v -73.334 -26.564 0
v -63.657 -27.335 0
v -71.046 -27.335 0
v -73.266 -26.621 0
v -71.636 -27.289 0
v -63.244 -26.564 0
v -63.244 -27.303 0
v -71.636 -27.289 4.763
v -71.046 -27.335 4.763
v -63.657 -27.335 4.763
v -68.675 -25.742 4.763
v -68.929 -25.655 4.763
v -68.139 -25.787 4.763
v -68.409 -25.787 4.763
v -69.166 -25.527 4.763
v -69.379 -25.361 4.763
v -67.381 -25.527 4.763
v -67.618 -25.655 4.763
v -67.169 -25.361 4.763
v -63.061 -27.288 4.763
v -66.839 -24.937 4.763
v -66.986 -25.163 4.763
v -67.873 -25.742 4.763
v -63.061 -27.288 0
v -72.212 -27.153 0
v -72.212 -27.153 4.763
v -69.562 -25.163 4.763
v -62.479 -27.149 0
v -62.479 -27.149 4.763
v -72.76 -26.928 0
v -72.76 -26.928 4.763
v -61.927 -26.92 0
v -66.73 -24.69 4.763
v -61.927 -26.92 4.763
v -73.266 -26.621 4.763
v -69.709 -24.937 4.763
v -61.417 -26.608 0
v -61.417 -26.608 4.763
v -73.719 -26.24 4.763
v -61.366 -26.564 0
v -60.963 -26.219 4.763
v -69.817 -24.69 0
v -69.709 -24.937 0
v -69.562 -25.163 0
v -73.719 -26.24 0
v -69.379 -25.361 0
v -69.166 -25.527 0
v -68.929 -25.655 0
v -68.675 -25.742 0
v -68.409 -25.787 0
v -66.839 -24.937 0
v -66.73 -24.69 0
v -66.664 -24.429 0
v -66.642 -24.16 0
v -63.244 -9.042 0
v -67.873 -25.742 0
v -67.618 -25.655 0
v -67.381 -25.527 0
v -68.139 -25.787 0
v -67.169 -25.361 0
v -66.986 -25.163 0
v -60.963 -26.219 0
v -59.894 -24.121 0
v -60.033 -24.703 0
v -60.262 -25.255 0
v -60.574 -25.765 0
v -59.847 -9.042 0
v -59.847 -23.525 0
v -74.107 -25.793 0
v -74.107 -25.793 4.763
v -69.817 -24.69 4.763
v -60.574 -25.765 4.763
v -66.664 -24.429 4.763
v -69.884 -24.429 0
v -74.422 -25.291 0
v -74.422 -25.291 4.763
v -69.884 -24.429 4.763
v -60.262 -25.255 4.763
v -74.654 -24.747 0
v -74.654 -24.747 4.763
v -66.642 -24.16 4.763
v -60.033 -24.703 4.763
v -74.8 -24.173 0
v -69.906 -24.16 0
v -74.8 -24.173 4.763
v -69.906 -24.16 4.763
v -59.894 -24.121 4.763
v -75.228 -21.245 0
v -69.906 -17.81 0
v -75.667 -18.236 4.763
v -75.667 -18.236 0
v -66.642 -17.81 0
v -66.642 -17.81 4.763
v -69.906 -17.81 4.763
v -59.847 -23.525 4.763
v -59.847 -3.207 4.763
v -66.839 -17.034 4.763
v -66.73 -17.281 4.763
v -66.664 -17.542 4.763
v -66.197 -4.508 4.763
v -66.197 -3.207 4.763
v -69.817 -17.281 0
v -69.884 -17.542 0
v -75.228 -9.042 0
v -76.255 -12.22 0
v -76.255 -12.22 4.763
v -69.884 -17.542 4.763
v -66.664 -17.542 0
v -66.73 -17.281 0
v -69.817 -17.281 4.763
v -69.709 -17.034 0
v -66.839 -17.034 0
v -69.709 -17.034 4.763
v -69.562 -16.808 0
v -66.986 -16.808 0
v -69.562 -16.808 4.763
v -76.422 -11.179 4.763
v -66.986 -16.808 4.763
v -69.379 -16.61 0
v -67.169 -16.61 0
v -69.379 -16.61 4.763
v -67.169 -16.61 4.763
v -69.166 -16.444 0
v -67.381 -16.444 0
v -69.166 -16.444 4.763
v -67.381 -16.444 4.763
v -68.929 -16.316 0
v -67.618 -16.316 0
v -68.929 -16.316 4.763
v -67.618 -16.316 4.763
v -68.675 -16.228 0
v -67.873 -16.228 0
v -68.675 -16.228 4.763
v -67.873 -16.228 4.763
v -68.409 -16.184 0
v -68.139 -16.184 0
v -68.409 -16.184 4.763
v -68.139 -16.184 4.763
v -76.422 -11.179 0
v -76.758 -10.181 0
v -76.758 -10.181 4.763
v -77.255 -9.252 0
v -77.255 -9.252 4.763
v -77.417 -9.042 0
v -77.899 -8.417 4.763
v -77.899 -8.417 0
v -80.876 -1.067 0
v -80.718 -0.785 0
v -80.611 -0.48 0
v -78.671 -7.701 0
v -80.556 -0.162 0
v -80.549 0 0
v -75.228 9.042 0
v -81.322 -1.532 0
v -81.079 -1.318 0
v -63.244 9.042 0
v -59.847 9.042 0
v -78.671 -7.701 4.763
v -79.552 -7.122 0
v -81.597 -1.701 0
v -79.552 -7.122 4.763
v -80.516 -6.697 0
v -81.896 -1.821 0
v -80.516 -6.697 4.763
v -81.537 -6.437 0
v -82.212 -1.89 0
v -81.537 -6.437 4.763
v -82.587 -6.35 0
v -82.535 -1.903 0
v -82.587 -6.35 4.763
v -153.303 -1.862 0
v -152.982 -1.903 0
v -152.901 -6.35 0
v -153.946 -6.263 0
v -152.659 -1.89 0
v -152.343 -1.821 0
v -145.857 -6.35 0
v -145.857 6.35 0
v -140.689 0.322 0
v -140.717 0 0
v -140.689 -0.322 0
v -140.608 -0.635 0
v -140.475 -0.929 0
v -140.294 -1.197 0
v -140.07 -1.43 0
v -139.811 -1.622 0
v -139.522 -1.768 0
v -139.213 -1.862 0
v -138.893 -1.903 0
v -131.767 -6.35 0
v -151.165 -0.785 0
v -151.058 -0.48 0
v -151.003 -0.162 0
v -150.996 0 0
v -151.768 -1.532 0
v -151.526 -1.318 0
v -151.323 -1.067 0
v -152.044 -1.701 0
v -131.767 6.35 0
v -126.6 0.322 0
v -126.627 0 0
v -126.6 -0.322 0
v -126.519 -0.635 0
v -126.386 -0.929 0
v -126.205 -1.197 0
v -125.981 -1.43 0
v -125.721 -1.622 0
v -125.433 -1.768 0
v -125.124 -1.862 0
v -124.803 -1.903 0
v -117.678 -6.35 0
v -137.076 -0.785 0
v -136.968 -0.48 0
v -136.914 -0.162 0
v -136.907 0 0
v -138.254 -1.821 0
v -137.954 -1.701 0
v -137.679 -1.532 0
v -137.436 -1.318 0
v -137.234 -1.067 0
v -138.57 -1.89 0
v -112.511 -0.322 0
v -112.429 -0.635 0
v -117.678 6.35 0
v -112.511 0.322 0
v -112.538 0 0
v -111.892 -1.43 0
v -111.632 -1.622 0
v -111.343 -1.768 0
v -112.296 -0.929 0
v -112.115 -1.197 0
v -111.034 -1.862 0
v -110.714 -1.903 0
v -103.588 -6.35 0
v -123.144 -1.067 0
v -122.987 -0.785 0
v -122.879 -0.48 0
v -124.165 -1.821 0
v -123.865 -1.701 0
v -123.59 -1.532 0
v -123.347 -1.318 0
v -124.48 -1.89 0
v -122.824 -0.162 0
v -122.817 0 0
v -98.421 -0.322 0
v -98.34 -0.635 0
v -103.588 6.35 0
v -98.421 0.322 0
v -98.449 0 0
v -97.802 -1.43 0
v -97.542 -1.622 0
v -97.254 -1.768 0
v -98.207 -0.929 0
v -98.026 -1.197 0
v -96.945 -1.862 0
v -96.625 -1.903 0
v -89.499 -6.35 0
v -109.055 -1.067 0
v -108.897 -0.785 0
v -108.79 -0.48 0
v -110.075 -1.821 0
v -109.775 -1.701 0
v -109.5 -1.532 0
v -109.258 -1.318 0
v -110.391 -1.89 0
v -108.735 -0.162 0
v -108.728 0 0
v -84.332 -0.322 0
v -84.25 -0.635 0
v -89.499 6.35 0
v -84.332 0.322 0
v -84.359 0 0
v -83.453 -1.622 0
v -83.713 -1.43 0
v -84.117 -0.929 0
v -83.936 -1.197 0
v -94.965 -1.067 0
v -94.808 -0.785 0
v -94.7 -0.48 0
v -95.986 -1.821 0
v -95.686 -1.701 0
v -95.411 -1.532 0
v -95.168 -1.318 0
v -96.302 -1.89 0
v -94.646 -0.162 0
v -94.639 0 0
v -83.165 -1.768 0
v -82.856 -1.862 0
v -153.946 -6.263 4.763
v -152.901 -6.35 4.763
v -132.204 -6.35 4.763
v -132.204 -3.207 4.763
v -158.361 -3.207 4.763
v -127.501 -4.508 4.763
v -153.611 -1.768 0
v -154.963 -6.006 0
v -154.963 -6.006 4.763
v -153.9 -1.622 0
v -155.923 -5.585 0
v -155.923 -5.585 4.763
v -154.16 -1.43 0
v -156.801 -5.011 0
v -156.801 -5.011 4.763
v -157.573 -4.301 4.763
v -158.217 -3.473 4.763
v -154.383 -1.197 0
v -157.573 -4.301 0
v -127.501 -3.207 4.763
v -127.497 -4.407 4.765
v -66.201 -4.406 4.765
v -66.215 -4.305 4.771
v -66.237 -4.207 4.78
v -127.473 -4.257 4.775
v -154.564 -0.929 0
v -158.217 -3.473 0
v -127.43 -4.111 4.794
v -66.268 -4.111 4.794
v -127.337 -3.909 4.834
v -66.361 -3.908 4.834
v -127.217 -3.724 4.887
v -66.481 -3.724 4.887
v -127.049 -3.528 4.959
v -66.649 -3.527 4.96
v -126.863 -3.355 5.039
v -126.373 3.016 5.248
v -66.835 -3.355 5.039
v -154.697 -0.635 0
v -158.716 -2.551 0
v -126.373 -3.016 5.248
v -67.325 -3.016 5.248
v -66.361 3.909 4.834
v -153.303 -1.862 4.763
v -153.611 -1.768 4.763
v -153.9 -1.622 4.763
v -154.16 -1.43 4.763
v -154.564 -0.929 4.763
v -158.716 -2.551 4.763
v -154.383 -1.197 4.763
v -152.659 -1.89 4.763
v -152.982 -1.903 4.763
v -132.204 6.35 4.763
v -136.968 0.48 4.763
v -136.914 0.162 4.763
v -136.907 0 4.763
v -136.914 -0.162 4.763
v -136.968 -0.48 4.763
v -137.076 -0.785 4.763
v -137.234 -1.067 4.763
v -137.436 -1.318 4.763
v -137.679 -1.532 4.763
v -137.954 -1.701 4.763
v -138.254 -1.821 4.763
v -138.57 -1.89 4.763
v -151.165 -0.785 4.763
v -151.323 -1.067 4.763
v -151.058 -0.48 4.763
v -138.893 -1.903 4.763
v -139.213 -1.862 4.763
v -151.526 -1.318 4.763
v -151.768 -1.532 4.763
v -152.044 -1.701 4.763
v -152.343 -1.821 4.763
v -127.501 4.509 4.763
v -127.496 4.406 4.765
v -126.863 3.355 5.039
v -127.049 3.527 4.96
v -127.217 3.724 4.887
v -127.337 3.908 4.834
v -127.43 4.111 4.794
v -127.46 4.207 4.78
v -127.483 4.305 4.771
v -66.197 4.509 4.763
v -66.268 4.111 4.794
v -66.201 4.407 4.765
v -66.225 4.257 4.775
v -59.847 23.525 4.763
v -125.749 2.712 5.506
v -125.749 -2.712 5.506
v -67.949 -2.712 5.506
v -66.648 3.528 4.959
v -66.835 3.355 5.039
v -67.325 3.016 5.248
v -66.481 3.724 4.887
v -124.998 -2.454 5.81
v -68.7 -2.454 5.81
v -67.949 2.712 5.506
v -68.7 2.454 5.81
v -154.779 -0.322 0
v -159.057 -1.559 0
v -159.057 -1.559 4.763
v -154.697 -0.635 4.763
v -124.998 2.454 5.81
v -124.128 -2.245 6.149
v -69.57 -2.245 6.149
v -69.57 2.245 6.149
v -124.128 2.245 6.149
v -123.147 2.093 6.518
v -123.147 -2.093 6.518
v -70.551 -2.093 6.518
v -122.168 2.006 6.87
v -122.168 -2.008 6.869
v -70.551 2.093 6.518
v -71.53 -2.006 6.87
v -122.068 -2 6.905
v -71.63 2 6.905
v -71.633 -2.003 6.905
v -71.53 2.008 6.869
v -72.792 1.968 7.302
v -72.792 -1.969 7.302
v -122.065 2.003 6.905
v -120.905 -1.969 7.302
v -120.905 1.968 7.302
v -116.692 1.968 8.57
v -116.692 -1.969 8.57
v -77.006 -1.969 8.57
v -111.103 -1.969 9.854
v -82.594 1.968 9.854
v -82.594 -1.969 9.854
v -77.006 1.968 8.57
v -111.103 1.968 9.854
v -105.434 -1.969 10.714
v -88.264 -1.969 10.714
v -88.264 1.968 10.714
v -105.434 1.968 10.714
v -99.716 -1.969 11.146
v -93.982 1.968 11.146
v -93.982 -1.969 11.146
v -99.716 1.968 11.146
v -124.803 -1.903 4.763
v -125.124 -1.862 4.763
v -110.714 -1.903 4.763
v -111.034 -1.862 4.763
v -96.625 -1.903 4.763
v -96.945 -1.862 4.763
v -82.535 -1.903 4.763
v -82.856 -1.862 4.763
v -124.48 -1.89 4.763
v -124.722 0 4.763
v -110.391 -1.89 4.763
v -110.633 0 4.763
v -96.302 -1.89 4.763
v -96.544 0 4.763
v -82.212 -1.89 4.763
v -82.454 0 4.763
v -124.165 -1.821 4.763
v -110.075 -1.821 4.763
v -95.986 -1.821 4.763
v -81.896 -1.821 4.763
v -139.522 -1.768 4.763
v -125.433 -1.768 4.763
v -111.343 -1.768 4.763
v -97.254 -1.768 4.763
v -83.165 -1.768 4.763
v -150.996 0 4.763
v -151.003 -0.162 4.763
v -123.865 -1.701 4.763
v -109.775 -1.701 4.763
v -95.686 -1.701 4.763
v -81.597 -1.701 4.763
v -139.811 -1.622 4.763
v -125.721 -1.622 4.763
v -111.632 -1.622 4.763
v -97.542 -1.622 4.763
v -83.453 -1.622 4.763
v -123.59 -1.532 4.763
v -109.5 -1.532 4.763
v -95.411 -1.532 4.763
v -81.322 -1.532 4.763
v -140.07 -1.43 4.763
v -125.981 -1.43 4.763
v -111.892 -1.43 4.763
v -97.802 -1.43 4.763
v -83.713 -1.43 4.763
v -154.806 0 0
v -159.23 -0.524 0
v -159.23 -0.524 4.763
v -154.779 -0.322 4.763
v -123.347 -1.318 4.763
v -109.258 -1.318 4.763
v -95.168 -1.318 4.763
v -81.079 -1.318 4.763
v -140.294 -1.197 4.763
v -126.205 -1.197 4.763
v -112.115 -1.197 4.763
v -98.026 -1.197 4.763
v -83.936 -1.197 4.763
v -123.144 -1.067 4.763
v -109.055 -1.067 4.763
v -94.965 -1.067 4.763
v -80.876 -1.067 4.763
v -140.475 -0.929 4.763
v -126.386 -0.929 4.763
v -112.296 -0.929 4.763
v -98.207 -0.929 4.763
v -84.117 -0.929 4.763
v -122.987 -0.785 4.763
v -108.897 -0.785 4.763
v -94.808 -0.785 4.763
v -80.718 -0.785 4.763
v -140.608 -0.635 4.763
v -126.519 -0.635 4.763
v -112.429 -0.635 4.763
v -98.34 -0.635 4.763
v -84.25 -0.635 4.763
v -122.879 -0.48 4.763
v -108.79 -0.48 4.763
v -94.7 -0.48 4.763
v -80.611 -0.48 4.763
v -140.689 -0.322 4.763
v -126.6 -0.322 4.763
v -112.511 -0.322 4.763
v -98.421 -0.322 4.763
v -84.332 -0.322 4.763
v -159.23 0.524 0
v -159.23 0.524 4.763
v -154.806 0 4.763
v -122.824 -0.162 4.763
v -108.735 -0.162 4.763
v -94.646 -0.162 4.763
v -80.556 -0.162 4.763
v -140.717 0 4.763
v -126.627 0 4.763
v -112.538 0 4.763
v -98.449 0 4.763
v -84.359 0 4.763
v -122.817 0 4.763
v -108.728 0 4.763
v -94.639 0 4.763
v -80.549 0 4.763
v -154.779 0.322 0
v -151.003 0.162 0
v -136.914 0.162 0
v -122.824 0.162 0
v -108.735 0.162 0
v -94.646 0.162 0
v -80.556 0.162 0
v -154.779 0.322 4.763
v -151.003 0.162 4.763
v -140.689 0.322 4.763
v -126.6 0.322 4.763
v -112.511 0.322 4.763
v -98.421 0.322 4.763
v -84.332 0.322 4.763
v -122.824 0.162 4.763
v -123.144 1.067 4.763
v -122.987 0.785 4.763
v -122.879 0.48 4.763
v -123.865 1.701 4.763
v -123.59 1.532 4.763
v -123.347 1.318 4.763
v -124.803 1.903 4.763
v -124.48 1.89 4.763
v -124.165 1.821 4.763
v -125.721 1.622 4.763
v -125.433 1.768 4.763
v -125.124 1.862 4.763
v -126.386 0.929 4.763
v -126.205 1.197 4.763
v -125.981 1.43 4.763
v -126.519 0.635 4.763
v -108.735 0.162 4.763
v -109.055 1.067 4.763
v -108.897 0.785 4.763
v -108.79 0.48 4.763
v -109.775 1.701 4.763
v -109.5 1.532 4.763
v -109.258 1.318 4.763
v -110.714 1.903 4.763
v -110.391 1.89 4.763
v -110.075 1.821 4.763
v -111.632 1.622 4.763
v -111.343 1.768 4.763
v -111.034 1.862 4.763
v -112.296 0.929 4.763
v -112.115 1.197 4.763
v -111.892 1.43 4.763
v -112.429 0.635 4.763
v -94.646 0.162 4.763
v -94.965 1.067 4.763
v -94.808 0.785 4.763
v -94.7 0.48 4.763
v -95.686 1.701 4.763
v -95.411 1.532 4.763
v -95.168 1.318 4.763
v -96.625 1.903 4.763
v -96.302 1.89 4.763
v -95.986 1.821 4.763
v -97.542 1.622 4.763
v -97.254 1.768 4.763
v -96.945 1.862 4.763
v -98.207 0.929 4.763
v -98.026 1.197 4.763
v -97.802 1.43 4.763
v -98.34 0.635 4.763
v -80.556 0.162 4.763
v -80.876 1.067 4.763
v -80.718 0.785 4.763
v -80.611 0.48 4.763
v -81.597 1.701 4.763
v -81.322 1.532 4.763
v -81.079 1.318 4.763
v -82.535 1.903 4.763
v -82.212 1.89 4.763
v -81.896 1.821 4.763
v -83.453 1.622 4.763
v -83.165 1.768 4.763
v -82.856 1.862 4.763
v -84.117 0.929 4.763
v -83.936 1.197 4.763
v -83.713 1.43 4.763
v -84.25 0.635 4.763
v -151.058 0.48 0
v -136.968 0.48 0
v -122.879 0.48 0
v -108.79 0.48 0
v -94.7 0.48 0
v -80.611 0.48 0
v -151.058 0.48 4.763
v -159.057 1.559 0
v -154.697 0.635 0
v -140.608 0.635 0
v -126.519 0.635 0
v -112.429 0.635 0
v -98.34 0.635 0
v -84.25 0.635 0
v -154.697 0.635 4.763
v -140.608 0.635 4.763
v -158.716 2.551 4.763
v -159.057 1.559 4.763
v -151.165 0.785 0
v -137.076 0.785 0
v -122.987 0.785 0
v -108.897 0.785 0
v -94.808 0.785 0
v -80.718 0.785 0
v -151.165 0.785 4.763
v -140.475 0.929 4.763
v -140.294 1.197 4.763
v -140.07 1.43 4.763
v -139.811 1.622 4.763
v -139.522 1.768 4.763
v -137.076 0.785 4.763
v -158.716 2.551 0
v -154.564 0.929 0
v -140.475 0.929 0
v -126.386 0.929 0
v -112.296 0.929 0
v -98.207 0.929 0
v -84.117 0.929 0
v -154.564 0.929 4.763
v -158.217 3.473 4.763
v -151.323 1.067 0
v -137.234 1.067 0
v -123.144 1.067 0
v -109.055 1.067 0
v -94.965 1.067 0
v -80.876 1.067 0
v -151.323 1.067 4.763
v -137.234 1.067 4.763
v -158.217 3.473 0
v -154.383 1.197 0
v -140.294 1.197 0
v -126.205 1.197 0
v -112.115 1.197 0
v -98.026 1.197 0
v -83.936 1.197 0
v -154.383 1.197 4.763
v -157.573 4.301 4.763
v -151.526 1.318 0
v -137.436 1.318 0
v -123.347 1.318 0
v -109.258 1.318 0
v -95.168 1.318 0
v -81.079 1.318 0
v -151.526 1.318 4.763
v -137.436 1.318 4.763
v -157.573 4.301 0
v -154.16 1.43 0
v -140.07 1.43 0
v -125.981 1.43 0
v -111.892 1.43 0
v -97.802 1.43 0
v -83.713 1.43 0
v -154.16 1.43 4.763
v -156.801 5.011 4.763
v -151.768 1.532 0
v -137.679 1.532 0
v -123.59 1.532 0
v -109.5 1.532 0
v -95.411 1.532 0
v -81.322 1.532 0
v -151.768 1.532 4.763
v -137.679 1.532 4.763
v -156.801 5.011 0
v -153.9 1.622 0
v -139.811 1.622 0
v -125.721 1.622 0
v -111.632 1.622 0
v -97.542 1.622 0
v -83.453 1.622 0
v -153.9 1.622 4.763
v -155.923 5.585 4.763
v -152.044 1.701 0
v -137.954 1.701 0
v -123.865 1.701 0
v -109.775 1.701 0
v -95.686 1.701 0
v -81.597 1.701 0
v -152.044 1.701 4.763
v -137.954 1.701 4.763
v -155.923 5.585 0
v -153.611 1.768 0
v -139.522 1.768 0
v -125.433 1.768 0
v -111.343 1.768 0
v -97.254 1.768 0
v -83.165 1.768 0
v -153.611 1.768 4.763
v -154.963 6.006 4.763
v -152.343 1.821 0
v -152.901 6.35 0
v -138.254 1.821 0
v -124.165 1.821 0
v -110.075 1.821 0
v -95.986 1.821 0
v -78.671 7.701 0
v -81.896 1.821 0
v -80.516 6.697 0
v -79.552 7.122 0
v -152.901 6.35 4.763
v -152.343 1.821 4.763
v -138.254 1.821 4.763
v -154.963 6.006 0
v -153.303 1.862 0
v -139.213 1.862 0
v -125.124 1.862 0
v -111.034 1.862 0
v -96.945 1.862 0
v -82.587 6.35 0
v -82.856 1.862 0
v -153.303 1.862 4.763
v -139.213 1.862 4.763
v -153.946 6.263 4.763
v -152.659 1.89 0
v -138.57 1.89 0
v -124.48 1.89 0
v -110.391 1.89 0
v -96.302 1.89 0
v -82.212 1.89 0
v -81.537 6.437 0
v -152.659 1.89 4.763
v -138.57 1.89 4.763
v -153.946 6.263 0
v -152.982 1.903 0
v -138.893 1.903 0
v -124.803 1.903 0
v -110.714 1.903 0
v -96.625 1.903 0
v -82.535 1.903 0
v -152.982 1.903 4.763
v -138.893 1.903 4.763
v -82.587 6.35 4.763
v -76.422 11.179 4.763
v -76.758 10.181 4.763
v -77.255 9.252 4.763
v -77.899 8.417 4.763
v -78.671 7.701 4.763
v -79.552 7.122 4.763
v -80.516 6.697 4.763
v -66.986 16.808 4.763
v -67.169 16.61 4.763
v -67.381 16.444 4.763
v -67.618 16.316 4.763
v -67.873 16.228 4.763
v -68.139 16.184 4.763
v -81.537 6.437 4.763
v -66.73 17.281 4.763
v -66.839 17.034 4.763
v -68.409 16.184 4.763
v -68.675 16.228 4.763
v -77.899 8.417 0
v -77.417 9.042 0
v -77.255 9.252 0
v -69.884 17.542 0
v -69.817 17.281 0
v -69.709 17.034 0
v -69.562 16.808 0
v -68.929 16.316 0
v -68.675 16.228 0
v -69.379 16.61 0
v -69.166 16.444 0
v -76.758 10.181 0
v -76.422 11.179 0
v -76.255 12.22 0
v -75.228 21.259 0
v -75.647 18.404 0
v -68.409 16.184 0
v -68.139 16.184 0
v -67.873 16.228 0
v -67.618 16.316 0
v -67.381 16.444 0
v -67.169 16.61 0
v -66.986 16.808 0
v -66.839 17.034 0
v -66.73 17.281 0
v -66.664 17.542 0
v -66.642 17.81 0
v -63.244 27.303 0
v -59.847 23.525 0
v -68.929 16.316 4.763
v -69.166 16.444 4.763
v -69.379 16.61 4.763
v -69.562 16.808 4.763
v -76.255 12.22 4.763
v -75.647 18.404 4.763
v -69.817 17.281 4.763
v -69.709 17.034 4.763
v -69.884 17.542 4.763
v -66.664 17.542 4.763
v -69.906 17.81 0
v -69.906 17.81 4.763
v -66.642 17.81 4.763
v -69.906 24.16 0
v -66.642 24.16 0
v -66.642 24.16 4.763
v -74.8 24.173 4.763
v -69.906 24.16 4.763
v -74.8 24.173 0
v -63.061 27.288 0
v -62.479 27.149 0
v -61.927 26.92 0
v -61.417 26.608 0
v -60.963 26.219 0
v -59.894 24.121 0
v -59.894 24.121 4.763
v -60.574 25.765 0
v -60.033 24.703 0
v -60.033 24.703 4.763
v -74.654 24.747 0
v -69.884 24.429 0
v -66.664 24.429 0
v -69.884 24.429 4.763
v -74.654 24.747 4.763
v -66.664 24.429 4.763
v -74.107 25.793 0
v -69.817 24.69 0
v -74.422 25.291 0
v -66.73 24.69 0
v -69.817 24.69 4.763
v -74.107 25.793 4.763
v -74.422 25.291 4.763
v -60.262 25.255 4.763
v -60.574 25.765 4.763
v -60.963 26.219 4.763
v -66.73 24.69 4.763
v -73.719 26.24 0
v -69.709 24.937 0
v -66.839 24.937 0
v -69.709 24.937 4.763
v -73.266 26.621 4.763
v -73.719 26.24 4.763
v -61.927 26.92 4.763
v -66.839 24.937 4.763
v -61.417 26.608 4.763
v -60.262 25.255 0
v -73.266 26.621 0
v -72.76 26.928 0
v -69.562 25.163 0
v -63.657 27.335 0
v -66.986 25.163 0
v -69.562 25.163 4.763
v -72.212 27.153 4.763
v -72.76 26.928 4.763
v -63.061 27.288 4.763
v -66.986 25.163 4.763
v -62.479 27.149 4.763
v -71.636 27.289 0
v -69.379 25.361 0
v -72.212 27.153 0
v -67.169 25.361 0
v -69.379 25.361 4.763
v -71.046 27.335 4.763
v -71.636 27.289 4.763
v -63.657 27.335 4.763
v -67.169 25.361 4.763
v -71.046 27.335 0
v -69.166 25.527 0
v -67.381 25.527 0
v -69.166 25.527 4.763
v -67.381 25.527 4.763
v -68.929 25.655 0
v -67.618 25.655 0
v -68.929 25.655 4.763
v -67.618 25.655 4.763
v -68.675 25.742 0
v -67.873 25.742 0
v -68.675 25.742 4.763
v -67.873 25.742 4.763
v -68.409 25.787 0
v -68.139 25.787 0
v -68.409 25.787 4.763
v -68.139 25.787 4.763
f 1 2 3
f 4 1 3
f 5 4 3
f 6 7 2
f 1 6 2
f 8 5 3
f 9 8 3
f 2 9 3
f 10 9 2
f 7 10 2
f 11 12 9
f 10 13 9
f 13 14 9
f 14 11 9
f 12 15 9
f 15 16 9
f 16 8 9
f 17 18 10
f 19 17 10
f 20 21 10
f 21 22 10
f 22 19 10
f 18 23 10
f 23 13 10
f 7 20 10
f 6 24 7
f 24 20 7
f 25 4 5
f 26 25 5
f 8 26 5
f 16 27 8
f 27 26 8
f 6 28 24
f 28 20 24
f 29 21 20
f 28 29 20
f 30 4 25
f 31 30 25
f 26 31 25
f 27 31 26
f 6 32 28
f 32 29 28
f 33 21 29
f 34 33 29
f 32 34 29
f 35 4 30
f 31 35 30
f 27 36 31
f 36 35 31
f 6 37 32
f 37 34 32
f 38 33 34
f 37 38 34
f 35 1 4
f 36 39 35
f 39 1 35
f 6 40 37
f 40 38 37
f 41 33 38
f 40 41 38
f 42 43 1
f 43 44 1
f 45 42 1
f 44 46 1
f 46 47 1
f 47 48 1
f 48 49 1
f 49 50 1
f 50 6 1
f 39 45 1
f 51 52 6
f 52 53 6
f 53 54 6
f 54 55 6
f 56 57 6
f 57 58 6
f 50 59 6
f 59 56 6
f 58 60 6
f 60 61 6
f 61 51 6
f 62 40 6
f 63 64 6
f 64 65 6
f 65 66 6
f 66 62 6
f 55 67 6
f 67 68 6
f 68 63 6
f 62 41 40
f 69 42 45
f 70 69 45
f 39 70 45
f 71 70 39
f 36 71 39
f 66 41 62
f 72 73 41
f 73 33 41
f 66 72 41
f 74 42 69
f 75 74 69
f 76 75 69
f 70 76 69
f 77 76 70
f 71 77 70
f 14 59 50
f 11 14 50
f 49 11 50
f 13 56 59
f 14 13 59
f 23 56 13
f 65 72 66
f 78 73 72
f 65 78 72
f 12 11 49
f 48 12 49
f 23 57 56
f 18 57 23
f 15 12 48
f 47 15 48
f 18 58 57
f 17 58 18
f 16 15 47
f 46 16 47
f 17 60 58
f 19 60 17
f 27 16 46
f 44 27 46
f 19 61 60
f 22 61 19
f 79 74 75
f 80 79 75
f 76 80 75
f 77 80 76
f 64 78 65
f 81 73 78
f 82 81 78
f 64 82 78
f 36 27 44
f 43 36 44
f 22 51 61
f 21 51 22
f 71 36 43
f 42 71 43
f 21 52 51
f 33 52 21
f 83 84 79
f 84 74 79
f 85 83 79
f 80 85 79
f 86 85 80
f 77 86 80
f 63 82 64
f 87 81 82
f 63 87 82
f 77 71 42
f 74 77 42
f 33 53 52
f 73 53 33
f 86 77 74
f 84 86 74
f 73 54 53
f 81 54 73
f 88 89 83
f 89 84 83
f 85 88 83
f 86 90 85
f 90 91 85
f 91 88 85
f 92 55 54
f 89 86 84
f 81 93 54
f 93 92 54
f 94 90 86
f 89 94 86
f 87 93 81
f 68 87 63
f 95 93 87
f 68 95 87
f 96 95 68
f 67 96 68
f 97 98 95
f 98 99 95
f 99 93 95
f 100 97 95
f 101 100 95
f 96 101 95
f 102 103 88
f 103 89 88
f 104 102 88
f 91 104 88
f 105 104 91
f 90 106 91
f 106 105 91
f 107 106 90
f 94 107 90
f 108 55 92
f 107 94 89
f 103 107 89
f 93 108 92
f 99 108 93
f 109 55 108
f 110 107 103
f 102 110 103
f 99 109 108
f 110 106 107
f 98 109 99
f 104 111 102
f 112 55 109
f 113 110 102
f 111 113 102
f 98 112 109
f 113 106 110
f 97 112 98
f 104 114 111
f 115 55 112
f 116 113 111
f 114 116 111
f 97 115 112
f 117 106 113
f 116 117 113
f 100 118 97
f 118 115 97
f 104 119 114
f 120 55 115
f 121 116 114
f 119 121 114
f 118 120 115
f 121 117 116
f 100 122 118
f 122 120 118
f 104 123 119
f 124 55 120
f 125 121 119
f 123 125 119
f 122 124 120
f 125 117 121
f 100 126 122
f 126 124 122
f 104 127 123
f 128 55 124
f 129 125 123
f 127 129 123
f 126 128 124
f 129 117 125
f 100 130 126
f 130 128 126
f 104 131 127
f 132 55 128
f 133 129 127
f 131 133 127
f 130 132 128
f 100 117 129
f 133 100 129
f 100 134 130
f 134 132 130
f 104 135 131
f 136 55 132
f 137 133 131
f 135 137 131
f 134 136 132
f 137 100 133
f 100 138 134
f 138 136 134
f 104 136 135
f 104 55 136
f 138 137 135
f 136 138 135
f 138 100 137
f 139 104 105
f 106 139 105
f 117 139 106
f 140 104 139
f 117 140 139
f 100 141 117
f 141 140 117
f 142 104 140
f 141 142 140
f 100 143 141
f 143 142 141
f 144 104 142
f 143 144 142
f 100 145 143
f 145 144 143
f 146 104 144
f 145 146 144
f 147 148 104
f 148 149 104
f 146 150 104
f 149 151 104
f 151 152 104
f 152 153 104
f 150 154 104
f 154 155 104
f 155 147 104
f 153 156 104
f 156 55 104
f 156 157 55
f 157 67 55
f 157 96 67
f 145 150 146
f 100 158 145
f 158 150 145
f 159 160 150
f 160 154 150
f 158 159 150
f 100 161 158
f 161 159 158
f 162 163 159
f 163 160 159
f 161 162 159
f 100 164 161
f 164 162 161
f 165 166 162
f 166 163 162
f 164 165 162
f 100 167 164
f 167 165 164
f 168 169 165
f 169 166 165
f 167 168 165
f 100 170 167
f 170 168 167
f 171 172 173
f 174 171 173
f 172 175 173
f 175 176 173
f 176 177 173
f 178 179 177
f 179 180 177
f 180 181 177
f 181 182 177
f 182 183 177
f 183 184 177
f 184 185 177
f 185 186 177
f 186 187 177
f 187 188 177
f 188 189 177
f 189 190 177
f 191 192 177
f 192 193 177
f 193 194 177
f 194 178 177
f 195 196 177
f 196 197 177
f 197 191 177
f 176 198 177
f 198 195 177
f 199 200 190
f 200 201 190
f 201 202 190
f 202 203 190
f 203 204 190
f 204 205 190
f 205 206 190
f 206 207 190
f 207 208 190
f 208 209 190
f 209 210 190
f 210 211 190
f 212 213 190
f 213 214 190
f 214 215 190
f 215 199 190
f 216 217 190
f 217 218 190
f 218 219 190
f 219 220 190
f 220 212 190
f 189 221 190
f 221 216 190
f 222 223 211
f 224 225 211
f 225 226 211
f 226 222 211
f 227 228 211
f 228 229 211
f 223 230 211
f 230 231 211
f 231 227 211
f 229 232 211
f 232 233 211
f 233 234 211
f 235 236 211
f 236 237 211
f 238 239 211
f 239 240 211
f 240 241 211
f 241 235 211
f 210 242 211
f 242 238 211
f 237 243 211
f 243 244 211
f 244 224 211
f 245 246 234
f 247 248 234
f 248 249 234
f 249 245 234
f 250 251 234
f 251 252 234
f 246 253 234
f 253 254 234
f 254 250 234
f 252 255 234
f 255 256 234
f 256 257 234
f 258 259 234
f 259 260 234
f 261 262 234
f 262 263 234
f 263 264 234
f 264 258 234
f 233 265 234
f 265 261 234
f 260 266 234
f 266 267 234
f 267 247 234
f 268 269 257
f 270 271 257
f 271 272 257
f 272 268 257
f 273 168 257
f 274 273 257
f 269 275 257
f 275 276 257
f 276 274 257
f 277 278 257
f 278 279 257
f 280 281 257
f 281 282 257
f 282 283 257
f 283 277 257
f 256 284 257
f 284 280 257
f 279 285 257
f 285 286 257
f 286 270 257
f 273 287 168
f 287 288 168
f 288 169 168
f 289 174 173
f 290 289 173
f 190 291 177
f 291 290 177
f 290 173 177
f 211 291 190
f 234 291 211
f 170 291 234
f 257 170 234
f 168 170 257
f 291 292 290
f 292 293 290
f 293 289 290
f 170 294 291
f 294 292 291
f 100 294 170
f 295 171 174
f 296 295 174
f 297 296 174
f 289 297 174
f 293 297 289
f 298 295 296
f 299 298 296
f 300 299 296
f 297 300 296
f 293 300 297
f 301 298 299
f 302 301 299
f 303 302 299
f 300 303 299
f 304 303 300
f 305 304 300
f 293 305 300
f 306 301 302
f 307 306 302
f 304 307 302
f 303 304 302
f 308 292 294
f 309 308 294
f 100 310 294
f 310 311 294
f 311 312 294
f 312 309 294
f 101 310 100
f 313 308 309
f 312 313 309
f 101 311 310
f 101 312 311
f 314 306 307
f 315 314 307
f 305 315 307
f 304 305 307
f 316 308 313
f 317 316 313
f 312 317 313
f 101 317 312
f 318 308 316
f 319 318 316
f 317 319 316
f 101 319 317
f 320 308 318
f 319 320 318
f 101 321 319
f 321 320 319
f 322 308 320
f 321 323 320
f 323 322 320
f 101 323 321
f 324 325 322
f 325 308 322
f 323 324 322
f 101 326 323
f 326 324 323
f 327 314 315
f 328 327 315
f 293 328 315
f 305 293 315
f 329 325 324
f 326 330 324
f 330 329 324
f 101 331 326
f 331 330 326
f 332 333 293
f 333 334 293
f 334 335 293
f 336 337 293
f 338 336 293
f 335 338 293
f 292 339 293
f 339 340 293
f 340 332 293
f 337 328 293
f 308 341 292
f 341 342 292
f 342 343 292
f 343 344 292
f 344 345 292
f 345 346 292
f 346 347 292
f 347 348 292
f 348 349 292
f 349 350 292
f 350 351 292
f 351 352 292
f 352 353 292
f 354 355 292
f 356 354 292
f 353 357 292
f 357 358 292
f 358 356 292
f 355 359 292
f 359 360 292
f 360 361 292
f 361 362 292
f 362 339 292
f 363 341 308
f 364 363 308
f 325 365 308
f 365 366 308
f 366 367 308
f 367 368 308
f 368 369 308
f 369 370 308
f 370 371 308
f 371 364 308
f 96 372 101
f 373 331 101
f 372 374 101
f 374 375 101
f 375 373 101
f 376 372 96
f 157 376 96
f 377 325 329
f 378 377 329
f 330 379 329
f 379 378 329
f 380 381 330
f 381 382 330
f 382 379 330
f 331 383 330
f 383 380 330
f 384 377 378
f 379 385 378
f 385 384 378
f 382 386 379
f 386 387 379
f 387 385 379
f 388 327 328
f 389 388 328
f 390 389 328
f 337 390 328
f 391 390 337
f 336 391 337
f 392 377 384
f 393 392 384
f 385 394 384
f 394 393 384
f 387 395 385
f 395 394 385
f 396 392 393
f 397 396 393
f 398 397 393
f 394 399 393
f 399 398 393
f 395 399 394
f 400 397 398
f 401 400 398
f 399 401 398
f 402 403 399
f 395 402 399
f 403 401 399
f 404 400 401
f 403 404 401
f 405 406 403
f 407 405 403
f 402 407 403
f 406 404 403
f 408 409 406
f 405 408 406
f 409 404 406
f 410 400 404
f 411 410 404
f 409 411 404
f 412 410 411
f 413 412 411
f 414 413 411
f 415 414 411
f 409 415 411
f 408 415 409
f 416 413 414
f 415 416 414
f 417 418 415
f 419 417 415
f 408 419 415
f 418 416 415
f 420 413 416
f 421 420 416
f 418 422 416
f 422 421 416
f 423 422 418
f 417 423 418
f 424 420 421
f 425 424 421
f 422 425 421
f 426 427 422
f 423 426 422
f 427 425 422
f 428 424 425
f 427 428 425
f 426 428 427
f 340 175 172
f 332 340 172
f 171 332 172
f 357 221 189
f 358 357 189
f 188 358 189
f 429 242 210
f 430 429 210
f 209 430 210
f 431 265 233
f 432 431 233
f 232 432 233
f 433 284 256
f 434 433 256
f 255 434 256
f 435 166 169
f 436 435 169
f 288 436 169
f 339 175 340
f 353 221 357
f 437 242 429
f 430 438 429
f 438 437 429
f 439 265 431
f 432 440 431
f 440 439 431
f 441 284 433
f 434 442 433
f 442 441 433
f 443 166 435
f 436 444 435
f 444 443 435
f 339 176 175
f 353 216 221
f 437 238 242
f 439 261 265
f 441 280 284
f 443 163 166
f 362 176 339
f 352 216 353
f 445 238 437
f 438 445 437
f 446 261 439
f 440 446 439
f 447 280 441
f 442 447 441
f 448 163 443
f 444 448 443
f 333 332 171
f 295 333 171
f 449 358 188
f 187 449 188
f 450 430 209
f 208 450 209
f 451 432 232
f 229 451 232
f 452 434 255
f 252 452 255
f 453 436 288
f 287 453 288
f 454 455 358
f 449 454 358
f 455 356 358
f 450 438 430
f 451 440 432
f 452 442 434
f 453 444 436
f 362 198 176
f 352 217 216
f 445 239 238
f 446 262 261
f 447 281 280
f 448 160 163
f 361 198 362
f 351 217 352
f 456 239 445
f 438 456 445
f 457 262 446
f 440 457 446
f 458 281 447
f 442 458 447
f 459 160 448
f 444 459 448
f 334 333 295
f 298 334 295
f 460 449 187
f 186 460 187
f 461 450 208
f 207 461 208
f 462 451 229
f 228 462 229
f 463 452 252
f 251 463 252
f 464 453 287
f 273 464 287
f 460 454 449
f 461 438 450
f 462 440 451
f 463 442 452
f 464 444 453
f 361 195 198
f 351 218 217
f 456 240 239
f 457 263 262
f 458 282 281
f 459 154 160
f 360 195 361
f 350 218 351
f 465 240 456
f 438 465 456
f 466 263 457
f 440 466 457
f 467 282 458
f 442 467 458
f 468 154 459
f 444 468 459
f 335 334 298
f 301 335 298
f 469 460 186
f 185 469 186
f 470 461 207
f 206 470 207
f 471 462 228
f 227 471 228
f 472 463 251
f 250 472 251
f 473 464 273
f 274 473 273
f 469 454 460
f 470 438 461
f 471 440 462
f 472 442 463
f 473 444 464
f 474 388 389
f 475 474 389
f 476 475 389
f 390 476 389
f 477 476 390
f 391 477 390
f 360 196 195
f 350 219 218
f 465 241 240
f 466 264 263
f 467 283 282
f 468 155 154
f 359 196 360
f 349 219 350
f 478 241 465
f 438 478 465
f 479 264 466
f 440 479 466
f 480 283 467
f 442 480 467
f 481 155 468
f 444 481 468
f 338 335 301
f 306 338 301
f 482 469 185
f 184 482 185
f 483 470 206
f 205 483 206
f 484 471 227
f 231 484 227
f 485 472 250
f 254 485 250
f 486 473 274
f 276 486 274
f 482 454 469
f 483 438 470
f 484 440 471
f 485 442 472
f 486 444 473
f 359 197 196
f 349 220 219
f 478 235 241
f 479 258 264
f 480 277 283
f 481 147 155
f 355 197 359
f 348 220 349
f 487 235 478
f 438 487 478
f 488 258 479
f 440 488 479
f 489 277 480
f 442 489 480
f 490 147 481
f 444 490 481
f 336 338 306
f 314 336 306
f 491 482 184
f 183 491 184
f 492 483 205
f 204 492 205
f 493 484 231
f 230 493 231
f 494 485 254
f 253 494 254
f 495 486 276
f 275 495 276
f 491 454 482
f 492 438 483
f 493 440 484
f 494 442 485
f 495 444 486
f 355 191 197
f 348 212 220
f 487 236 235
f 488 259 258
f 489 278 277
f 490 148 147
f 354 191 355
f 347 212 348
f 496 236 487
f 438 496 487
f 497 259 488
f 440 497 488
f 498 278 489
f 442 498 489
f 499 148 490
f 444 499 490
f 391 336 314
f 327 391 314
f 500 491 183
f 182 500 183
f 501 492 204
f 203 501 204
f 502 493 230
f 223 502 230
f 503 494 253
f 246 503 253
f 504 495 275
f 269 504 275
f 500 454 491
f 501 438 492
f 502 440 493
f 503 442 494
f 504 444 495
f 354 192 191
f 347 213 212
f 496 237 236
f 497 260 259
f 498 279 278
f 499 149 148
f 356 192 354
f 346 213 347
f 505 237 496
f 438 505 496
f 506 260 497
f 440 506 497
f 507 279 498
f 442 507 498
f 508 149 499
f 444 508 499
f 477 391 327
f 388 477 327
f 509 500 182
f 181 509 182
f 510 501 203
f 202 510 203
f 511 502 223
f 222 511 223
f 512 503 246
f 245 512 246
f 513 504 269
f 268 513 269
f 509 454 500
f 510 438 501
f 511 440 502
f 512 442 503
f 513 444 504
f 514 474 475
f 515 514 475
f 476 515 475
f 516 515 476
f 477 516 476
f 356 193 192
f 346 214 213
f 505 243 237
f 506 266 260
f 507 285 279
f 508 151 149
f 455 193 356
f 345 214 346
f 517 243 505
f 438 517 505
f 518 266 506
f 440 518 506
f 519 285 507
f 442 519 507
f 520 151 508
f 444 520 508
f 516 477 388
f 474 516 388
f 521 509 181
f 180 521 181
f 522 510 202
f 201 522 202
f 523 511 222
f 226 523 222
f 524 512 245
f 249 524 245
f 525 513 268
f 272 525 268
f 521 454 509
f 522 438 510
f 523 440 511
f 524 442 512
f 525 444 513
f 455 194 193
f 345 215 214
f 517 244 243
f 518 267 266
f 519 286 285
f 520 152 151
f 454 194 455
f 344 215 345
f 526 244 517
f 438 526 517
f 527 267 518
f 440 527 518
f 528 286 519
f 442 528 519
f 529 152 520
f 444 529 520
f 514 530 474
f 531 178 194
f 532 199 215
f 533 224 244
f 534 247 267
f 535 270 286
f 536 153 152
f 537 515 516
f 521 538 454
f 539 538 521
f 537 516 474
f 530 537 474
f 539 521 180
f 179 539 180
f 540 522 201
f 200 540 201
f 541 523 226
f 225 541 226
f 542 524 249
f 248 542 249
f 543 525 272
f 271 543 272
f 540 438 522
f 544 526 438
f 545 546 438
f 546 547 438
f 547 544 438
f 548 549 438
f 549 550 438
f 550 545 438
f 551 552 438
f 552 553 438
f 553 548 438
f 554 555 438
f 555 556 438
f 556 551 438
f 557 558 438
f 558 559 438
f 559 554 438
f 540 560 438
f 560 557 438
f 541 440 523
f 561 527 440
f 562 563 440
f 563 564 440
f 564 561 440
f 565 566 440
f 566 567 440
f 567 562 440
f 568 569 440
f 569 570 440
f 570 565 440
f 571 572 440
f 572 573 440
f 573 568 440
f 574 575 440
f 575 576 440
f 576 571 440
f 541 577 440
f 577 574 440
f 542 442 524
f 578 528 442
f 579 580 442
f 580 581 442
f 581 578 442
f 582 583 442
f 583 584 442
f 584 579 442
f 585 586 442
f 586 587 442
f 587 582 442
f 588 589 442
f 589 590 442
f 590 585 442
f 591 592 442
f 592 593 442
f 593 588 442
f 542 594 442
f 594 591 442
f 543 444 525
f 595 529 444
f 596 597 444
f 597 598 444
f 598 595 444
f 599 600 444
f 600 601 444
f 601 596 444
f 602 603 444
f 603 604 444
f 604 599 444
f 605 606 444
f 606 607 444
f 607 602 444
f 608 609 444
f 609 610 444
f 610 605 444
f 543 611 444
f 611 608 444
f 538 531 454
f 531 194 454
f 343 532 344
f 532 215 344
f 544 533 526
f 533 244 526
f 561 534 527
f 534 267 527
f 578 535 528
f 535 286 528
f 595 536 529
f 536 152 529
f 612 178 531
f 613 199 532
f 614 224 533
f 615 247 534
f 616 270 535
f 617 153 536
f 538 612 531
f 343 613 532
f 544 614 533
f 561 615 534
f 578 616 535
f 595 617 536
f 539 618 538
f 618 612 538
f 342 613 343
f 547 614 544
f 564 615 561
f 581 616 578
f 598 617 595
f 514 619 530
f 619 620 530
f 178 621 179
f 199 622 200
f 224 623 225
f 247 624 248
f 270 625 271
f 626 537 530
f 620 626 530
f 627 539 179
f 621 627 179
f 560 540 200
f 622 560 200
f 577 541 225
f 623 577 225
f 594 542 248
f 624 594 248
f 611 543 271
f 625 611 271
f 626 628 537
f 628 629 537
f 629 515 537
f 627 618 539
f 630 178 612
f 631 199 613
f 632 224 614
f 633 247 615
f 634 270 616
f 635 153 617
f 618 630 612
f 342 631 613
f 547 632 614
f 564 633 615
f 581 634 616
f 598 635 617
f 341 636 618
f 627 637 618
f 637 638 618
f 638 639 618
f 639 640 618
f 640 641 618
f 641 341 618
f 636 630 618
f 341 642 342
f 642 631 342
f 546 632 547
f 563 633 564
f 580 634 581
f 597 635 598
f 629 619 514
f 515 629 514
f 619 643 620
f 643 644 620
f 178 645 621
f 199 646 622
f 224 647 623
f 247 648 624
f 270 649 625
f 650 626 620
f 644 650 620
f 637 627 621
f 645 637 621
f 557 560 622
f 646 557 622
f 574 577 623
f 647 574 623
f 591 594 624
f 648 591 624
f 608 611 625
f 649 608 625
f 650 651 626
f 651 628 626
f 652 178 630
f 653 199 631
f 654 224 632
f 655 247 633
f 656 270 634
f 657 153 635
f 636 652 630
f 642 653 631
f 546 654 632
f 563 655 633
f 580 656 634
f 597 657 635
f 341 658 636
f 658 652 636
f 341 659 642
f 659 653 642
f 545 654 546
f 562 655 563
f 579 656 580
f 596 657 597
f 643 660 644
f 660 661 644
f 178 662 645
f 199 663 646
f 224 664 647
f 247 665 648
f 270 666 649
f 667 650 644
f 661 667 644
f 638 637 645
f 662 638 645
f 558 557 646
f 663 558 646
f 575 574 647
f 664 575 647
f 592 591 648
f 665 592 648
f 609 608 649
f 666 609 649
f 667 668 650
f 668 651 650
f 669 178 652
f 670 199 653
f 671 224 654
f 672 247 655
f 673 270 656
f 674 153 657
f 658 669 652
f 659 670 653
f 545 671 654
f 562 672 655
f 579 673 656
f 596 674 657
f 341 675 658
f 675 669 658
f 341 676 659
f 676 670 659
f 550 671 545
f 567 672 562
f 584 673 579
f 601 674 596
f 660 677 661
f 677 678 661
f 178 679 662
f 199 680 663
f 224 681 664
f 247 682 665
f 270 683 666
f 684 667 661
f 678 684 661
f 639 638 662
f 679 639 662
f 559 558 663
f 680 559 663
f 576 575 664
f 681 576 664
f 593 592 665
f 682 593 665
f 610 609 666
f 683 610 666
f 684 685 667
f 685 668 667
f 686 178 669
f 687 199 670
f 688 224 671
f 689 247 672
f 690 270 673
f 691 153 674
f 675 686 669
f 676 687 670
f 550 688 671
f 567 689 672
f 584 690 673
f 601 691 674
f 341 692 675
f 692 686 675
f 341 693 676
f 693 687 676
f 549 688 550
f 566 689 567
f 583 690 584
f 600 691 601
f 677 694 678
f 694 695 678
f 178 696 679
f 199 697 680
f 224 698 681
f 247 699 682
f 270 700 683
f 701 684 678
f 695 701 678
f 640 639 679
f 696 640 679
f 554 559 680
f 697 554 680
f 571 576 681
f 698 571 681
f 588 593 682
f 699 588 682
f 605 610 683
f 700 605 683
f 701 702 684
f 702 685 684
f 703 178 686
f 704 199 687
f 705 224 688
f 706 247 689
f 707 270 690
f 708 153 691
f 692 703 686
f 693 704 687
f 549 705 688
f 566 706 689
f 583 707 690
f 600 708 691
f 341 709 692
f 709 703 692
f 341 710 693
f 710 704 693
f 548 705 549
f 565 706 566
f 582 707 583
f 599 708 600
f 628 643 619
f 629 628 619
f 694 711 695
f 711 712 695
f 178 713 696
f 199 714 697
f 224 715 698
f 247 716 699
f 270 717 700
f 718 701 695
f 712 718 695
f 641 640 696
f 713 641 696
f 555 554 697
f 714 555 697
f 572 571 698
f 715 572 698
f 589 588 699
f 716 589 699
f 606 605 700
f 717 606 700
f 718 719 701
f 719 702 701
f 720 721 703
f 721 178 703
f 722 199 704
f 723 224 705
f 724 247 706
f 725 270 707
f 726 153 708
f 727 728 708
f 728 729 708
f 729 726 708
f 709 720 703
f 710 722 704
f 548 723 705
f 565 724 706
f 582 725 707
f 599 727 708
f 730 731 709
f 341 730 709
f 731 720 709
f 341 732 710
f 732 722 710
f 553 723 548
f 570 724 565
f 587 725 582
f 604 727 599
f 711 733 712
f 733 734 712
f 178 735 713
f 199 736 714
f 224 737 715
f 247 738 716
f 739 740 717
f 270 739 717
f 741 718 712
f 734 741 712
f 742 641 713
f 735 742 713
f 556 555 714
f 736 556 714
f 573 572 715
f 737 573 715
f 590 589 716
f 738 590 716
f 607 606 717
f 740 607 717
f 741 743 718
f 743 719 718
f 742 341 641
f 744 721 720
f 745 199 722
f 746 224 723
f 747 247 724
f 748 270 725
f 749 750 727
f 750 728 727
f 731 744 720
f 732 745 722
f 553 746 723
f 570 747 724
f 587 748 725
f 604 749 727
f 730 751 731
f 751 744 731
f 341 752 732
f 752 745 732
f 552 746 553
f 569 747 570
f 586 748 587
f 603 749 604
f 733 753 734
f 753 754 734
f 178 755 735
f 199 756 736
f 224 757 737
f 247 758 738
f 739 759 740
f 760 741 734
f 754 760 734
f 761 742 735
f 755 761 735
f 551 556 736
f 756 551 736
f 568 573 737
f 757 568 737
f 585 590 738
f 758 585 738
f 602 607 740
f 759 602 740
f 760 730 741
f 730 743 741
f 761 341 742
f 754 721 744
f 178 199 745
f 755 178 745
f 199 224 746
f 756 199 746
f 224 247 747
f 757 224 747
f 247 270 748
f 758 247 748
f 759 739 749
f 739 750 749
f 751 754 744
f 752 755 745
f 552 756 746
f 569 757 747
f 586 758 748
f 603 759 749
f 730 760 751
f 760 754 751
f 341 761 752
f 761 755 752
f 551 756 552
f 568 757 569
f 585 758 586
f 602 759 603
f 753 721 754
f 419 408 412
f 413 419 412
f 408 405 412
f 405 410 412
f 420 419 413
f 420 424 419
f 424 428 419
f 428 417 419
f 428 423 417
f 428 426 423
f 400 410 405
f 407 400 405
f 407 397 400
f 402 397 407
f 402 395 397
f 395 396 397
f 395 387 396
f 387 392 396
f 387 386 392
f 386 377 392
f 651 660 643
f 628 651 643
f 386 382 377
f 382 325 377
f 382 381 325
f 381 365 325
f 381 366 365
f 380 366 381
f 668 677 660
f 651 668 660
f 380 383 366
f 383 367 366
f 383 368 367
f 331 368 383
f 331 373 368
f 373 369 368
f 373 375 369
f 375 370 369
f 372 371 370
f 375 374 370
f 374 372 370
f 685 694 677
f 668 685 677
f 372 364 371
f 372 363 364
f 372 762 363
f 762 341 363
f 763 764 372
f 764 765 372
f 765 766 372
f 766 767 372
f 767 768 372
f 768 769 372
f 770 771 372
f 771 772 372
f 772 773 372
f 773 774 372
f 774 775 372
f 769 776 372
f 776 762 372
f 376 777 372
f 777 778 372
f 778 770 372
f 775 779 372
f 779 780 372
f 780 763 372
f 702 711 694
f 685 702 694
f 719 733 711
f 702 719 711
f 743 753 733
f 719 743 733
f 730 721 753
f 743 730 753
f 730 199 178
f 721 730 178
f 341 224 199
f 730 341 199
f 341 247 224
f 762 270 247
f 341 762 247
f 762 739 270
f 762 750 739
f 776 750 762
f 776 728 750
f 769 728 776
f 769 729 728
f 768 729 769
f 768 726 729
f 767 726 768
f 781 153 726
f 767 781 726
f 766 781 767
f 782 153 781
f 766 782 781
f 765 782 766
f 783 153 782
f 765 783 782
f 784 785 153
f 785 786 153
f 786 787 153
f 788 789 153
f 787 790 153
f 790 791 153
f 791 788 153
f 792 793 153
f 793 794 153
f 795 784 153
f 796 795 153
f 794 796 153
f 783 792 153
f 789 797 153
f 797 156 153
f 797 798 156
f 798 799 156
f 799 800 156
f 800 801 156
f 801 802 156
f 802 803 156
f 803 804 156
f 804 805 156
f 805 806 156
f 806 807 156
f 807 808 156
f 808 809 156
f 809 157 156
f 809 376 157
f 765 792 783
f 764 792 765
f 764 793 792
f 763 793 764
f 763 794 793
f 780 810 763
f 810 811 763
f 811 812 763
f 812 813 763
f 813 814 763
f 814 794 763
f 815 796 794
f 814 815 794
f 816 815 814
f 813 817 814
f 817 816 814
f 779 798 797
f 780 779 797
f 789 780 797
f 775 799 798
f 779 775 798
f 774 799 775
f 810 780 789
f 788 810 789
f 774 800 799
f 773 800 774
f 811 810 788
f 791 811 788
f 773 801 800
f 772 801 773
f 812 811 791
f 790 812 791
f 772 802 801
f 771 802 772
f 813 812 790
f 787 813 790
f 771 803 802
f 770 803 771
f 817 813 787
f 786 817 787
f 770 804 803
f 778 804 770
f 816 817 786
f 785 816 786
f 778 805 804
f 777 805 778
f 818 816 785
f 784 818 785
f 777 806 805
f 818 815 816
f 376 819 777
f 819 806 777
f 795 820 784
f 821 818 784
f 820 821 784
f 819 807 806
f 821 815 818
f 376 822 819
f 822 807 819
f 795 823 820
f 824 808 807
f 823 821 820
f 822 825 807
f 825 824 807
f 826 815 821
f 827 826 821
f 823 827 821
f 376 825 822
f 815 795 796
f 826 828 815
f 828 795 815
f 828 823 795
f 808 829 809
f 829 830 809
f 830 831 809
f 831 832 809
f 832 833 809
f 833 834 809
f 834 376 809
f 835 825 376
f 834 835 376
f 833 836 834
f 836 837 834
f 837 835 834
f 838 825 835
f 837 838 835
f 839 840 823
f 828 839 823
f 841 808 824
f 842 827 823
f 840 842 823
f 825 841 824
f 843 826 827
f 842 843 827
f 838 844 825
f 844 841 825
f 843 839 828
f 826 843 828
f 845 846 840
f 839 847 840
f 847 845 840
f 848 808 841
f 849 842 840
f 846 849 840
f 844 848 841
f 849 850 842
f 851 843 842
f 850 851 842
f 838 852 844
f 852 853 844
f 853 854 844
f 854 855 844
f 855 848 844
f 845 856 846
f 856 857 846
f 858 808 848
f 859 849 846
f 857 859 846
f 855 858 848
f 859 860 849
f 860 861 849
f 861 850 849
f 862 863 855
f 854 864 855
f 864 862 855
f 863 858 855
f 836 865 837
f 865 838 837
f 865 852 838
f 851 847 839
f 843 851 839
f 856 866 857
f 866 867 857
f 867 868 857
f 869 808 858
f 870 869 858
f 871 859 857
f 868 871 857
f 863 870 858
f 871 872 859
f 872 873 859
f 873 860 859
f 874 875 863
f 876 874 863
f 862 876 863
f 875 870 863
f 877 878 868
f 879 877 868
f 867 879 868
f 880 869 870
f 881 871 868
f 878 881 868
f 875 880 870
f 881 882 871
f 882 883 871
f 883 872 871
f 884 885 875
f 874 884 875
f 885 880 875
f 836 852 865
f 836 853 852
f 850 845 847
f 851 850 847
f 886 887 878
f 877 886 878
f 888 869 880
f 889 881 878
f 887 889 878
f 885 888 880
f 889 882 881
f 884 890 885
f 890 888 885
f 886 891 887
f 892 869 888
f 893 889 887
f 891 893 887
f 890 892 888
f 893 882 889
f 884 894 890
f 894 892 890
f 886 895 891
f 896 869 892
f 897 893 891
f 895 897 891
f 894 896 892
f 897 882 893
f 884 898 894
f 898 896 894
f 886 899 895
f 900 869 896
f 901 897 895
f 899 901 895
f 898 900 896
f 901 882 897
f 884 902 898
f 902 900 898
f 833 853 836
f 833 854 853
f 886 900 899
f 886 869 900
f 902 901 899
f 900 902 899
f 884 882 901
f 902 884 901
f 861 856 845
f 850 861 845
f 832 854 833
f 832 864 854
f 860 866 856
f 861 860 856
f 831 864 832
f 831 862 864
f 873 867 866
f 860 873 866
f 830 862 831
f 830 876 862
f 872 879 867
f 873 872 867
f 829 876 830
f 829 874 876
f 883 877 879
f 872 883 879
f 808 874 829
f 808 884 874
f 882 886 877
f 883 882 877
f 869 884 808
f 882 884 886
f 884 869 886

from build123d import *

# Parameters (mm, degrees)
SKETCH1_R           = 1.905
BOSS_EXTRUDE1_DEPTH = 4.7625
BOSS_EXTRUDE2_DEPTH = 1.9685
FILLET1_R           = 2.54


with BuildPart() as part:
    # Sketch1 → Boss-Extrude1 (new body)
    with BuildSketch(Plane.XY):
        with BuildLine():
            Line((-71.045544716, 27.335394647), (-63.656604316, 27.335394647))
            ThreePointArc((-63.656604316, 27.335394647), (-60.962527479, 26.219471483), (-59.846604316, 23.525394647))
            Line((-59.846604316, 23.525394647), (-59.846604316, 0))
            Line((-59.846604316, 0), (-59.846604316, -23.525394647))
            ThreePointArc((-59.846604316, -23.525394647), (-60.962527479, -26.219471483), (-63.656604316, -27.335394647))
            Line((-63.656604316, -27.335394647), (-71.045544716, -27.335394647))
            ThreePointArc((-71.045544716, -27.335394647), (-73.499934786, -26.439510188), (-74.800072929, -24.173173852))
            add(Edge.make_bspline(
                [(-76.255398054, -12.219815998), (-75.950115276, -16.245345964), (-75.476568023, -20.252208344), (-74.800072929, -24.173173852)],
                knots=[0.13080804, 0.13080804, 0.13080804, 0.13080804, 0.259951787, 0.259951787, 0.259951787, 0.259951787], degree=3))
            ThreePointArc((-76.255398054, -12.219815998), (-78.270195904, -8.04319485), (-82.587216381, -6.35))
            Line((-82.587216381, -6.35), (-152.901202739, -6.35))
            ThreePointArc((-152.901202739, -6.35), (-159.251202739, 0), (-152.901202739, 6.35))
            Line((-152.901202739, 6.35), (-82.587216381, 6.35))
            ThreePointArc((-82.587216381, 6.35), (-78.270195904, 8.04319485), (-76.255398054, 12.219815998))
            add(Edge.make_bspline(
                [(-74.800072929, 24.173173852), (-75.476568023, 20.252208344), (-75.950115276, 16.245345964), (-76.255398054, 12.219815998)],
                knots=[0.740048213, 0.740048213, 0.740048213, 0.740048213, 0.86919196, 0.86919196, 0.86919196, 0.86919196], degree=3))
            ThreePointArc((-74.800072929, 24.173173852), (-73.499934786, 26.439510188), (-71.045544716, 27.335394647))
        make_face()
        with Locations((-152.901202739, 0)):
            Circle(SKETCH1_R, mode=Mode.SUBTRACT)
        with Locations((-138.811822739, 0)):
            Circle(SKETCH1_R, mode=Mode.SUBTRACT)
        with Locations((-124.722442739, 0)):
            Circle(SKETCH1_R, mode=Mode.SUBTRACT)
        with Locations((-110.633062739, 0)):
            Circle(SKETCH1_R, mode=Mode.SUBTRACT)
        with Locations((-96.543682739, 0)):
            Circle(SKETCH1_R, mode=Mode.SUBTRACT)
        with Locations((-82.454302739, 0)):
            Circle(SKETCH1_R, mode=Mode.SUBTRACT)
        with BuildLine():
            Line((-69.905853527, -24.160394647), (-69.905853527, -17.810394647))
            ThreePointArc((-69.905853527, -17.810394647), (-68.273903527, -16.178444647), (-66.641953527, -17.810394647))
            Line((-66.641953527, -17.810394647), (-66.641953527, -24.160394647))
            ThreePointArc((-66.641953527, -24.160394647), (-68.273903527, -25.792344647), (-69.905853527, -24.160394647))
        make_face(mode=Mode.SUBTRACT)
        with BuildLine():
            Line((-69.905853527, 24.160394647), (-69.905853527, 17.810394647))
            ThreePointArc((-69.905853527, 17.810394647), (-68.273903527, 16.178444647), (-66.641953527, 17.810394647))
            Line((-66.641953527, 17.810394647), (-66.641953527, 24.160394647))
            ThreePointArc((-66.641953527, 24.160394647), (-68.273903527, 25.792344647), (-69.905853527, 24.160394647))
        make_face(mode=Mode.SUBTRACT)
    extrude(amount=BOSS_EXTRUDE1_DEPTH)

    # Sketch2 → Boss-Extrude2 (add, symmetric)
    with BuildSketch(Plane(origin=(0, 0, 0), x_dir=(1, 0, 0), z_dir=(0, 1, 0))):
        with BuildLine():
            Line((-66.196604316, -4.7625), (-127.501202739, -4.7625))
            ThreePointArc((-127.501202739, -4.7625), (-96.848903527, -11.199497248), (-66.196604316, -4.7625))
        make_face()
    extrude(amount=BOSS_EXTRUDE2_DEPTH, both=True)

    # Fillet1
    fillet1_edges = [part.edges().sort_by_distance(p)[0] for p in [
        (-96.848903527, -1.9685, 4.7625),
        (-96.848903527, 1.9685, 4.7625),
    ]]
    fillet(fillet1_edges, radius=FILLET1_R)


solid = part.part
